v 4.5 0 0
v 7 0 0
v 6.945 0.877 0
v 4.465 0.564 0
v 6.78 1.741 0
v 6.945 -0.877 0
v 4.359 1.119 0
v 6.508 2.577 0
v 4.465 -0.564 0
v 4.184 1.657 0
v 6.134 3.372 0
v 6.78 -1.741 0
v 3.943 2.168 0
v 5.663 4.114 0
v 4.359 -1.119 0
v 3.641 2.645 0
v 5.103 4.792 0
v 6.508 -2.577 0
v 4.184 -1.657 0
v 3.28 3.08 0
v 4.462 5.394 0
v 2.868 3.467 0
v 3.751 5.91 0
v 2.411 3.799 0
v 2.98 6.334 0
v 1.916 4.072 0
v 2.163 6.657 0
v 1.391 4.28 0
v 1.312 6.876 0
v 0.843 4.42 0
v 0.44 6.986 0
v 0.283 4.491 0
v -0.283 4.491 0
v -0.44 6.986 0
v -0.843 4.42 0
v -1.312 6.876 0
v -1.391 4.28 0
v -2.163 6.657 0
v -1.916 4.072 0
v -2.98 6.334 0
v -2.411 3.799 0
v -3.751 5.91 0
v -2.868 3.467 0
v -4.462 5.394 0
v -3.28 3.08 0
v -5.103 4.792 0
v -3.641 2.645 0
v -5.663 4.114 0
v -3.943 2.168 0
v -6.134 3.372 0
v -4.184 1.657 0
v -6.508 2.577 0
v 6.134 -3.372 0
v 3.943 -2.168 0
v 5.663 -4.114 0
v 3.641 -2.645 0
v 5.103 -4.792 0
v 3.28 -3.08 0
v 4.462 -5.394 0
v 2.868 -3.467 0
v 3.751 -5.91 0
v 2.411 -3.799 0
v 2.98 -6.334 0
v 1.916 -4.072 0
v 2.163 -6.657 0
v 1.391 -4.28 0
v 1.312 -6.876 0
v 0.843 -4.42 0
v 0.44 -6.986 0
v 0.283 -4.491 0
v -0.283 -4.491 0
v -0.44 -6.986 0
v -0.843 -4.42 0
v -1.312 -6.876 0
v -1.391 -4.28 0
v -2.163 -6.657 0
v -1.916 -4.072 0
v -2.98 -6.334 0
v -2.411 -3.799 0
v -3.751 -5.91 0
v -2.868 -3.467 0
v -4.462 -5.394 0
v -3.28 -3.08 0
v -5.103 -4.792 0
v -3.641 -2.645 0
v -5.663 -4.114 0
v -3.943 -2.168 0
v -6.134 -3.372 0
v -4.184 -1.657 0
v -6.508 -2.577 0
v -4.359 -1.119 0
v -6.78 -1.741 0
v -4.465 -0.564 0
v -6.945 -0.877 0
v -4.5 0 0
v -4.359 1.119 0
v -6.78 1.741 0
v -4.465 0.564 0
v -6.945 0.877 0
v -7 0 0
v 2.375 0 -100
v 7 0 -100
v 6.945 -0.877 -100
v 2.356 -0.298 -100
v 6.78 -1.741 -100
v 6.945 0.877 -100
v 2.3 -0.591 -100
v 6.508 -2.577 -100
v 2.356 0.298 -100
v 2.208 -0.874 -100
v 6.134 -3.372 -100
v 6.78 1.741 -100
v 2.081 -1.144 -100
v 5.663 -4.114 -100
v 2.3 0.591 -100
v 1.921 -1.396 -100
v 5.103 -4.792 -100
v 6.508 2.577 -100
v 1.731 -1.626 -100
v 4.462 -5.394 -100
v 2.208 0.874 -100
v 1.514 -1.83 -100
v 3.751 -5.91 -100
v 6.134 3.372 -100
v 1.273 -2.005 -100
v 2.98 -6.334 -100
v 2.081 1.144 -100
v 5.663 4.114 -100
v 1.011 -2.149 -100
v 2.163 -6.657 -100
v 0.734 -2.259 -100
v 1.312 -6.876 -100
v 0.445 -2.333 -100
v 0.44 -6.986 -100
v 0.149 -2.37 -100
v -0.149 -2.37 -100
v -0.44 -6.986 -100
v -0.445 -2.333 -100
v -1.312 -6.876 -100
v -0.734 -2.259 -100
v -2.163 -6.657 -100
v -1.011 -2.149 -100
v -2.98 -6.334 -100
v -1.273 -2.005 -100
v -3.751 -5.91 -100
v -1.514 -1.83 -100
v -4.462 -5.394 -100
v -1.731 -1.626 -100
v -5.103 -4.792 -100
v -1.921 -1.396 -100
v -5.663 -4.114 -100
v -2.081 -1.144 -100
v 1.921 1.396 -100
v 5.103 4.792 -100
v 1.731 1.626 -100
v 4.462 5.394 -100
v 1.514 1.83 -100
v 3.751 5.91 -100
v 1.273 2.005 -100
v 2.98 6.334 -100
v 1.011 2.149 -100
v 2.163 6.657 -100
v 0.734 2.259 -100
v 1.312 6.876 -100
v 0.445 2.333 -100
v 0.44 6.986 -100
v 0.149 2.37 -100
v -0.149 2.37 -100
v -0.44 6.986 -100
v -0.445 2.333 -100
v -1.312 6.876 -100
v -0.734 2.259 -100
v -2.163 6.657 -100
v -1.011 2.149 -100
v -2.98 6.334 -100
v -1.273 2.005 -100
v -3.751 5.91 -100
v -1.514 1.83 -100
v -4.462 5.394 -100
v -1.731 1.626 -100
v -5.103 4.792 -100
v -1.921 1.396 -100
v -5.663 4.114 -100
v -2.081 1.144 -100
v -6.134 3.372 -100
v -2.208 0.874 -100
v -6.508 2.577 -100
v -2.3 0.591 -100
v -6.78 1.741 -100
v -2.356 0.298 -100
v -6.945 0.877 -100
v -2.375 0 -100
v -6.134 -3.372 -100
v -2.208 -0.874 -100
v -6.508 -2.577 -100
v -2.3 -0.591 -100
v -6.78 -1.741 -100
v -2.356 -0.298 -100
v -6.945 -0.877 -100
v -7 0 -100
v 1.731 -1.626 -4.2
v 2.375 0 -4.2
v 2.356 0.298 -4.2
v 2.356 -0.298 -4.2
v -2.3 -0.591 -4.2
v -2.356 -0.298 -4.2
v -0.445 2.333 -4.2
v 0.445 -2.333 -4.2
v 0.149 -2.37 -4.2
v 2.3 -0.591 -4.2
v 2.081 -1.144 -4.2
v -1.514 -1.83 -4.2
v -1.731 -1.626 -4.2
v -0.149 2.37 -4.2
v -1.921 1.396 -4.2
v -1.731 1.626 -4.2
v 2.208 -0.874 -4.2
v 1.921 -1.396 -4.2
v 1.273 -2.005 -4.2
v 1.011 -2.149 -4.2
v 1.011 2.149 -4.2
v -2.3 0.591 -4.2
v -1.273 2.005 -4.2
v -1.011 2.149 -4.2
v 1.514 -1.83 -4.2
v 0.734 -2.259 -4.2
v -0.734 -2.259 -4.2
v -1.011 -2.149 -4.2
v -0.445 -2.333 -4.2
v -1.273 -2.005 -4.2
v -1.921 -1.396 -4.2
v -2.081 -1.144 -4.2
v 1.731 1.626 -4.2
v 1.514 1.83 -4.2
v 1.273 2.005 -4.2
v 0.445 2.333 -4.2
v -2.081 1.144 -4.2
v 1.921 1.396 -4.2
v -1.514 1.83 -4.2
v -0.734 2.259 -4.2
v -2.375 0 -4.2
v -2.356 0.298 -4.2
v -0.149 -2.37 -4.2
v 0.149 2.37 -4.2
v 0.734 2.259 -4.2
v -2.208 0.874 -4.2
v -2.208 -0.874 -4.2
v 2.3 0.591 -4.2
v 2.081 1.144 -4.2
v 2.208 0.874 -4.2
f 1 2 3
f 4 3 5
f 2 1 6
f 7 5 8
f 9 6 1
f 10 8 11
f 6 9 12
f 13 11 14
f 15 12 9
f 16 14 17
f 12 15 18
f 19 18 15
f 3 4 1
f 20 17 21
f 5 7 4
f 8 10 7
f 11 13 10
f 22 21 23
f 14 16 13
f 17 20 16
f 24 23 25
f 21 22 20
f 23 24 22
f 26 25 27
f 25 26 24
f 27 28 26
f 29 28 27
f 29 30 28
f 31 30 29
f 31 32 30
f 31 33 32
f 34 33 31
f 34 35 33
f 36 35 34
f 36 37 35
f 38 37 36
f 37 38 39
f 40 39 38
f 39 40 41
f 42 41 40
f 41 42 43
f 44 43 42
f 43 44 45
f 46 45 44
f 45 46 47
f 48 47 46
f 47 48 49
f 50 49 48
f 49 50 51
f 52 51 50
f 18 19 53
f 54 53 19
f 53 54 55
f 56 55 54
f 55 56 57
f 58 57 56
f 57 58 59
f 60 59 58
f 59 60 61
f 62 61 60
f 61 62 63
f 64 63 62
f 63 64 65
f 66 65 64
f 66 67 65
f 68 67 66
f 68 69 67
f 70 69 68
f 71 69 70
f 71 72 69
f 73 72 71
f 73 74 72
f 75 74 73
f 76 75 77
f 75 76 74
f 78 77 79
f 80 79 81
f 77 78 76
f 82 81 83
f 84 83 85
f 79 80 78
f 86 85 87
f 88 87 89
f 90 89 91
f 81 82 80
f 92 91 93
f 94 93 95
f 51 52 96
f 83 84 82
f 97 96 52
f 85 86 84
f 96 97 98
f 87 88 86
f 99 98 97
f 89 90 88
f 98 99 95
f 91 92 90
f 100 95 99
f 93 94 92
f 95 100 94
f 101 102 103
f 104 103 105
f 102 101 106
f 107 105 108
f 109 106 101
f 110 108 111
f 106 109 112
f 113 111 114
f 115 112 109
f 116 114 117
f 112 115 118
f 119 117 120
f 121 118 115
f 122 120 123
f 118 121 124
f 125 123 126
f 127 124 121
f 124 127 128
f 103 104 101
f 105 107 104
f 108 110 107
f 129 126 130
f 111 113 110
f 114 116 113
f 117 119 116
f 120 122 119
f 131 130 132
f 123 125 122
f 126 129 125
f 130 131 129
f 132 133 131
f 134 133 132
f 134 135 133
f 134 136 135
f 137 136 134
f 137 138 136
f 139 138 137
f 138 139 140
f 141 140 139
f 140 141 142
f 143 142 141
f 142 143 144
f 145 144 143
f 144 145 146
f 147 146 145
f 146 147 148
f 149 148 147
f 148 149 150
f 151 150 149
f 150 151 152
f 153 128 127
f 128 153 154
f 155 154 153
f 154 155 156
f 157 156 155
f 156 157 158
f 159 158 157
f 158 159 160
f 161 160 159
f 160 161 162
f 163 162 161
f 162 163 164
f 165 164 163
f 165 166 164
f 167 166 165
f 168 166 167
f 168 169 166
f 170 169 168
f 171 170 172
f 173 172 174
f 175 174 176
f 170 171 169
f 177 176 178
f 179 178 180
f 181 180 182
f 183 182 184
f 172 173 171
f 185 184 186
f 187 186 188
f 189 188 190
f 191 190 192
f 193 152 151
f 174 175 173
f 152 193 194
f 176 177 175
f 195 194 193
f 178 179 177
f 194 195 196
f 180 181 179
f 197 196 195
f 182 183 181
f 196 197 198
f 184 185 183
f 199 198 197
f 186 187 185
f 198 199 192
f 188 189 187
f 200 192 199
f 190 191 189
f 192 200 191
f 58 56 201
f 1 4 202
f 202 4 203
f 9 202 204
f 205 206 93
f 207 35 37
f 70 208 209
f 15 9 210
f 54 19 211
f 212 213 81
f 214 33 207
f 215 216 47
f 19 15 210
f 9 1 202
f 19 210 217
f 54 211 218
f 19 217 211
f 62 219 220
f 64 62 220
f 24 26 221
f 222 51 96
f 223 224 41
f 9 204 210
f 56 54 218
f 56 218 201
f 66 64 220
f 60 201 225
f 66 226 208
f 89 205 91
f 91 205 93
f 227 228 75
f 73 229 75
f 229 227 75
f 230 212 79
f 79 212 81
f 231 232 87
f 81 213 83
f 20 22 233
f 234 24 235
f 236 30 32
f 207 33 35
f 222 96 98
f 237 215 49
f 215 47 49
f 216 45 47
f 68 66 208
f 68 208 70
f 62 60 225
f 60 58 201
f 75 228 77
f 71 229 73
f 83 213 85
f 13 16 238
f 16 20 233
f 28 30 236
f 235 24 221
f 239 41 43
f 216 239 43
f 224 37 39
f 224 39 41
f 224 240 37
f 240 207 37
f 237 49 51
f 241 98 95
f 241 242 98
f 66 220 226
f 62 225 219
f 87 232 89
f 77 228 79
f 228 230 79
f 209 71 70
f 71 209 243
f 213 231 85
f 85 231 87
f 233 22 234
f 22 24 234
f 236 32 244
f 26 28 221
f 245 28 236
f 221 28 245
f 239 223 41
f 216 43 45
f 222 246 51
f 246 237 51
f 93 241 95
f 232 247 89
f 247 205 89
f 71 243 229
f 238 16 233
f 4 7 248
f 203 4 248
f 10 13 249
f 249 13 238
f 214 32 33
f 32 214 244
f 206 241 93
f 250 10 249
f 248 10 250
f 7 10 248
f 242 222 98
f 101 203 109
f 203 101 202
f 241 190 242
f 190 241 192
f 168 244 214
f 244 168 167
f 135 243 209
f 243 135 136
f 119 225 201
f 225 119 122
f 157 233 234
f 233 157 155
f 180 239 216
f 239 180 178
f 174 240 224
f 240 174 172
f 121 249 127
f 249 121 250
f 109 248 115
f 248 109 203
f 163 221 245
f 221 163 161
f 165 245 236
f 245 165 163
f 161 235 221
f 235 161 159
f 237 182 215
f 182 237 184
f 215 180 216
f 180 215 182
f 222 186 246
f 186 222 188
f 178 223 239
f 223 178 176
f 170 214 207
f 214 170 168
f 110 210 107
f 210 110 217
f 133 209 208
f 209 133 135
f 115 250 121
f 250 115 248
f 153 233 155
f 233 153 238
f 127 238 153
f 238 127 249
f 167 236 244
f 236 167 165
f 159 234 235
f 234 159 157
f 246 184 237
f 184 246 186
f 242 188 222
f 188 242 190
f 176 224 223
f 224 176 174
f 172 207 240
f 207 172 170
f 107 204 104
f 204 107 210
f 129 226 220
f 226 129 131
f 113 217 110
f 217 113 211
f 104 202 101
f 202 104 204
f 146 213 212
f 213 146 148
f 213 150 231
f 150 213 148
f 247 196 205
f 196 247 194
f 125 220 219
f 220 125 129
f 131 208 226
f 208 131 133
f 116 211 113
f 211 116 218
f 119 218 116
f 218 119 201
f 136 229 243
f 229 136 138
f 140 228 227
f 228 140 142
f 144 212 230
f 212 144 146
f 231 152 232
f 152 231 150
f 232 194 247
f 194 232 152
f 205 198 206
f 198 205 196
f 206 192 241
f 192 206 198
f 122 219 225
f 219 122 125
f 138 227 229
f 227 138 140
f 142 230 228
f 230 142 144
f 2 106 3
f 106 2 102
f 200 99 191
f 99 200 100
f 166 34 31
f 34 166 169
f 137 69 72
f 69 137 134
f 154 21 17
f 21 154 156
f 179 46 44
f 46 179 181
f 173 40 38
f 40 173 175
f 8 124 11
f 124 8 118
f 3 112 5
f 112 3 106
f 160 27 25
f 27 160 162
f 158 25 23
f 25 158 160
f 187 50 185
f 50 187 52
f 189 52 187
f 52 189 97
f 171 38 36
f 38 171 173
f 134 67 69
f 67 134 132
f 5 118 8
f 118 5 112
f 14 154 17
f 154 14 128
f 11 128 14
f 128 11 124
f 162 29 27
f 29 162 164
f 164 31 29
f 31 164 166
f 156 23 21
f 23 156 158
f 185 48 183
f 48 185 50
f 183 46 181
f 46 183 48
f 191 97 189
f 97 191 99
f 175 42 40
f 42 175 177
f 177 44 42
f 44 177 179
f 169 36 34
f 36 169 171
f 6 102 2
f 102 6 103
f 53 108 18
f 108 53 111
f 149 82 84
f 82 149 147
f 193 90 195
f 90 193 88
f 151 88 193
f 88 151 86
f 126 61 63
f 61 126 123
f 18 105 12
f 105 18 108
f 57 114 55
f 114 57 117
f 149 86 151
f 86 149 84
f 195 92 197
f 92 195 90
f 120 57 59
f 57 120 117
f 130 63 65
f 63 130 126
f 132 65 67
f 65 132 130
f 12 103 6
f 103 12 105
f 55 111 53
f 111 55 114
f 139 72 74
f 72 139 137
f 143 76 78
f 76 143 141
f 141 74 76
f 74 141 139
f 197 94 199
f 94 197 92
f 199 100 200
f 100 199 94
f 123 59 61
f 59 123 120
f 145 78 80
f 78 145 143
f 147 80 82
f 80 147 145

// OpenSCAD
$fn = 50;


difference() {
	union() {
		translate(v = [0, 0, -100.0000000000]) {
			cylinder(h = 100, r = 7.0000000000);
		}
		cylinder(h = 0, r = 17.0000000000);
	}
	union() {
		translate(v = [0, 0, 0]) {
			rotate(a = [0, 0, 0]) {
				difference() {
					union() {
						#translate(v = [0, 0, -100.0000000000]) {
							cylinder(h = 100, r = 2.2500000000);
						}
						#translate(v = [0, 0, -4.2000000000]) {
							cylinder(h = 4.2000000000, r = 7.0000000000, r1 = 2.3750000000, r2 = 4.5000000000);
						}
						#translate(v = [0, 0, -100.0000000000]) {
							cylinder(h = 100, r = 2.3750000000);
						}
						#translate(v = [0, 0, -100.0000000000]) {
							cylinder(h = 100, r = 2.2500000000);
						}
					}
					union();
				}
			}
		}
	}
}
